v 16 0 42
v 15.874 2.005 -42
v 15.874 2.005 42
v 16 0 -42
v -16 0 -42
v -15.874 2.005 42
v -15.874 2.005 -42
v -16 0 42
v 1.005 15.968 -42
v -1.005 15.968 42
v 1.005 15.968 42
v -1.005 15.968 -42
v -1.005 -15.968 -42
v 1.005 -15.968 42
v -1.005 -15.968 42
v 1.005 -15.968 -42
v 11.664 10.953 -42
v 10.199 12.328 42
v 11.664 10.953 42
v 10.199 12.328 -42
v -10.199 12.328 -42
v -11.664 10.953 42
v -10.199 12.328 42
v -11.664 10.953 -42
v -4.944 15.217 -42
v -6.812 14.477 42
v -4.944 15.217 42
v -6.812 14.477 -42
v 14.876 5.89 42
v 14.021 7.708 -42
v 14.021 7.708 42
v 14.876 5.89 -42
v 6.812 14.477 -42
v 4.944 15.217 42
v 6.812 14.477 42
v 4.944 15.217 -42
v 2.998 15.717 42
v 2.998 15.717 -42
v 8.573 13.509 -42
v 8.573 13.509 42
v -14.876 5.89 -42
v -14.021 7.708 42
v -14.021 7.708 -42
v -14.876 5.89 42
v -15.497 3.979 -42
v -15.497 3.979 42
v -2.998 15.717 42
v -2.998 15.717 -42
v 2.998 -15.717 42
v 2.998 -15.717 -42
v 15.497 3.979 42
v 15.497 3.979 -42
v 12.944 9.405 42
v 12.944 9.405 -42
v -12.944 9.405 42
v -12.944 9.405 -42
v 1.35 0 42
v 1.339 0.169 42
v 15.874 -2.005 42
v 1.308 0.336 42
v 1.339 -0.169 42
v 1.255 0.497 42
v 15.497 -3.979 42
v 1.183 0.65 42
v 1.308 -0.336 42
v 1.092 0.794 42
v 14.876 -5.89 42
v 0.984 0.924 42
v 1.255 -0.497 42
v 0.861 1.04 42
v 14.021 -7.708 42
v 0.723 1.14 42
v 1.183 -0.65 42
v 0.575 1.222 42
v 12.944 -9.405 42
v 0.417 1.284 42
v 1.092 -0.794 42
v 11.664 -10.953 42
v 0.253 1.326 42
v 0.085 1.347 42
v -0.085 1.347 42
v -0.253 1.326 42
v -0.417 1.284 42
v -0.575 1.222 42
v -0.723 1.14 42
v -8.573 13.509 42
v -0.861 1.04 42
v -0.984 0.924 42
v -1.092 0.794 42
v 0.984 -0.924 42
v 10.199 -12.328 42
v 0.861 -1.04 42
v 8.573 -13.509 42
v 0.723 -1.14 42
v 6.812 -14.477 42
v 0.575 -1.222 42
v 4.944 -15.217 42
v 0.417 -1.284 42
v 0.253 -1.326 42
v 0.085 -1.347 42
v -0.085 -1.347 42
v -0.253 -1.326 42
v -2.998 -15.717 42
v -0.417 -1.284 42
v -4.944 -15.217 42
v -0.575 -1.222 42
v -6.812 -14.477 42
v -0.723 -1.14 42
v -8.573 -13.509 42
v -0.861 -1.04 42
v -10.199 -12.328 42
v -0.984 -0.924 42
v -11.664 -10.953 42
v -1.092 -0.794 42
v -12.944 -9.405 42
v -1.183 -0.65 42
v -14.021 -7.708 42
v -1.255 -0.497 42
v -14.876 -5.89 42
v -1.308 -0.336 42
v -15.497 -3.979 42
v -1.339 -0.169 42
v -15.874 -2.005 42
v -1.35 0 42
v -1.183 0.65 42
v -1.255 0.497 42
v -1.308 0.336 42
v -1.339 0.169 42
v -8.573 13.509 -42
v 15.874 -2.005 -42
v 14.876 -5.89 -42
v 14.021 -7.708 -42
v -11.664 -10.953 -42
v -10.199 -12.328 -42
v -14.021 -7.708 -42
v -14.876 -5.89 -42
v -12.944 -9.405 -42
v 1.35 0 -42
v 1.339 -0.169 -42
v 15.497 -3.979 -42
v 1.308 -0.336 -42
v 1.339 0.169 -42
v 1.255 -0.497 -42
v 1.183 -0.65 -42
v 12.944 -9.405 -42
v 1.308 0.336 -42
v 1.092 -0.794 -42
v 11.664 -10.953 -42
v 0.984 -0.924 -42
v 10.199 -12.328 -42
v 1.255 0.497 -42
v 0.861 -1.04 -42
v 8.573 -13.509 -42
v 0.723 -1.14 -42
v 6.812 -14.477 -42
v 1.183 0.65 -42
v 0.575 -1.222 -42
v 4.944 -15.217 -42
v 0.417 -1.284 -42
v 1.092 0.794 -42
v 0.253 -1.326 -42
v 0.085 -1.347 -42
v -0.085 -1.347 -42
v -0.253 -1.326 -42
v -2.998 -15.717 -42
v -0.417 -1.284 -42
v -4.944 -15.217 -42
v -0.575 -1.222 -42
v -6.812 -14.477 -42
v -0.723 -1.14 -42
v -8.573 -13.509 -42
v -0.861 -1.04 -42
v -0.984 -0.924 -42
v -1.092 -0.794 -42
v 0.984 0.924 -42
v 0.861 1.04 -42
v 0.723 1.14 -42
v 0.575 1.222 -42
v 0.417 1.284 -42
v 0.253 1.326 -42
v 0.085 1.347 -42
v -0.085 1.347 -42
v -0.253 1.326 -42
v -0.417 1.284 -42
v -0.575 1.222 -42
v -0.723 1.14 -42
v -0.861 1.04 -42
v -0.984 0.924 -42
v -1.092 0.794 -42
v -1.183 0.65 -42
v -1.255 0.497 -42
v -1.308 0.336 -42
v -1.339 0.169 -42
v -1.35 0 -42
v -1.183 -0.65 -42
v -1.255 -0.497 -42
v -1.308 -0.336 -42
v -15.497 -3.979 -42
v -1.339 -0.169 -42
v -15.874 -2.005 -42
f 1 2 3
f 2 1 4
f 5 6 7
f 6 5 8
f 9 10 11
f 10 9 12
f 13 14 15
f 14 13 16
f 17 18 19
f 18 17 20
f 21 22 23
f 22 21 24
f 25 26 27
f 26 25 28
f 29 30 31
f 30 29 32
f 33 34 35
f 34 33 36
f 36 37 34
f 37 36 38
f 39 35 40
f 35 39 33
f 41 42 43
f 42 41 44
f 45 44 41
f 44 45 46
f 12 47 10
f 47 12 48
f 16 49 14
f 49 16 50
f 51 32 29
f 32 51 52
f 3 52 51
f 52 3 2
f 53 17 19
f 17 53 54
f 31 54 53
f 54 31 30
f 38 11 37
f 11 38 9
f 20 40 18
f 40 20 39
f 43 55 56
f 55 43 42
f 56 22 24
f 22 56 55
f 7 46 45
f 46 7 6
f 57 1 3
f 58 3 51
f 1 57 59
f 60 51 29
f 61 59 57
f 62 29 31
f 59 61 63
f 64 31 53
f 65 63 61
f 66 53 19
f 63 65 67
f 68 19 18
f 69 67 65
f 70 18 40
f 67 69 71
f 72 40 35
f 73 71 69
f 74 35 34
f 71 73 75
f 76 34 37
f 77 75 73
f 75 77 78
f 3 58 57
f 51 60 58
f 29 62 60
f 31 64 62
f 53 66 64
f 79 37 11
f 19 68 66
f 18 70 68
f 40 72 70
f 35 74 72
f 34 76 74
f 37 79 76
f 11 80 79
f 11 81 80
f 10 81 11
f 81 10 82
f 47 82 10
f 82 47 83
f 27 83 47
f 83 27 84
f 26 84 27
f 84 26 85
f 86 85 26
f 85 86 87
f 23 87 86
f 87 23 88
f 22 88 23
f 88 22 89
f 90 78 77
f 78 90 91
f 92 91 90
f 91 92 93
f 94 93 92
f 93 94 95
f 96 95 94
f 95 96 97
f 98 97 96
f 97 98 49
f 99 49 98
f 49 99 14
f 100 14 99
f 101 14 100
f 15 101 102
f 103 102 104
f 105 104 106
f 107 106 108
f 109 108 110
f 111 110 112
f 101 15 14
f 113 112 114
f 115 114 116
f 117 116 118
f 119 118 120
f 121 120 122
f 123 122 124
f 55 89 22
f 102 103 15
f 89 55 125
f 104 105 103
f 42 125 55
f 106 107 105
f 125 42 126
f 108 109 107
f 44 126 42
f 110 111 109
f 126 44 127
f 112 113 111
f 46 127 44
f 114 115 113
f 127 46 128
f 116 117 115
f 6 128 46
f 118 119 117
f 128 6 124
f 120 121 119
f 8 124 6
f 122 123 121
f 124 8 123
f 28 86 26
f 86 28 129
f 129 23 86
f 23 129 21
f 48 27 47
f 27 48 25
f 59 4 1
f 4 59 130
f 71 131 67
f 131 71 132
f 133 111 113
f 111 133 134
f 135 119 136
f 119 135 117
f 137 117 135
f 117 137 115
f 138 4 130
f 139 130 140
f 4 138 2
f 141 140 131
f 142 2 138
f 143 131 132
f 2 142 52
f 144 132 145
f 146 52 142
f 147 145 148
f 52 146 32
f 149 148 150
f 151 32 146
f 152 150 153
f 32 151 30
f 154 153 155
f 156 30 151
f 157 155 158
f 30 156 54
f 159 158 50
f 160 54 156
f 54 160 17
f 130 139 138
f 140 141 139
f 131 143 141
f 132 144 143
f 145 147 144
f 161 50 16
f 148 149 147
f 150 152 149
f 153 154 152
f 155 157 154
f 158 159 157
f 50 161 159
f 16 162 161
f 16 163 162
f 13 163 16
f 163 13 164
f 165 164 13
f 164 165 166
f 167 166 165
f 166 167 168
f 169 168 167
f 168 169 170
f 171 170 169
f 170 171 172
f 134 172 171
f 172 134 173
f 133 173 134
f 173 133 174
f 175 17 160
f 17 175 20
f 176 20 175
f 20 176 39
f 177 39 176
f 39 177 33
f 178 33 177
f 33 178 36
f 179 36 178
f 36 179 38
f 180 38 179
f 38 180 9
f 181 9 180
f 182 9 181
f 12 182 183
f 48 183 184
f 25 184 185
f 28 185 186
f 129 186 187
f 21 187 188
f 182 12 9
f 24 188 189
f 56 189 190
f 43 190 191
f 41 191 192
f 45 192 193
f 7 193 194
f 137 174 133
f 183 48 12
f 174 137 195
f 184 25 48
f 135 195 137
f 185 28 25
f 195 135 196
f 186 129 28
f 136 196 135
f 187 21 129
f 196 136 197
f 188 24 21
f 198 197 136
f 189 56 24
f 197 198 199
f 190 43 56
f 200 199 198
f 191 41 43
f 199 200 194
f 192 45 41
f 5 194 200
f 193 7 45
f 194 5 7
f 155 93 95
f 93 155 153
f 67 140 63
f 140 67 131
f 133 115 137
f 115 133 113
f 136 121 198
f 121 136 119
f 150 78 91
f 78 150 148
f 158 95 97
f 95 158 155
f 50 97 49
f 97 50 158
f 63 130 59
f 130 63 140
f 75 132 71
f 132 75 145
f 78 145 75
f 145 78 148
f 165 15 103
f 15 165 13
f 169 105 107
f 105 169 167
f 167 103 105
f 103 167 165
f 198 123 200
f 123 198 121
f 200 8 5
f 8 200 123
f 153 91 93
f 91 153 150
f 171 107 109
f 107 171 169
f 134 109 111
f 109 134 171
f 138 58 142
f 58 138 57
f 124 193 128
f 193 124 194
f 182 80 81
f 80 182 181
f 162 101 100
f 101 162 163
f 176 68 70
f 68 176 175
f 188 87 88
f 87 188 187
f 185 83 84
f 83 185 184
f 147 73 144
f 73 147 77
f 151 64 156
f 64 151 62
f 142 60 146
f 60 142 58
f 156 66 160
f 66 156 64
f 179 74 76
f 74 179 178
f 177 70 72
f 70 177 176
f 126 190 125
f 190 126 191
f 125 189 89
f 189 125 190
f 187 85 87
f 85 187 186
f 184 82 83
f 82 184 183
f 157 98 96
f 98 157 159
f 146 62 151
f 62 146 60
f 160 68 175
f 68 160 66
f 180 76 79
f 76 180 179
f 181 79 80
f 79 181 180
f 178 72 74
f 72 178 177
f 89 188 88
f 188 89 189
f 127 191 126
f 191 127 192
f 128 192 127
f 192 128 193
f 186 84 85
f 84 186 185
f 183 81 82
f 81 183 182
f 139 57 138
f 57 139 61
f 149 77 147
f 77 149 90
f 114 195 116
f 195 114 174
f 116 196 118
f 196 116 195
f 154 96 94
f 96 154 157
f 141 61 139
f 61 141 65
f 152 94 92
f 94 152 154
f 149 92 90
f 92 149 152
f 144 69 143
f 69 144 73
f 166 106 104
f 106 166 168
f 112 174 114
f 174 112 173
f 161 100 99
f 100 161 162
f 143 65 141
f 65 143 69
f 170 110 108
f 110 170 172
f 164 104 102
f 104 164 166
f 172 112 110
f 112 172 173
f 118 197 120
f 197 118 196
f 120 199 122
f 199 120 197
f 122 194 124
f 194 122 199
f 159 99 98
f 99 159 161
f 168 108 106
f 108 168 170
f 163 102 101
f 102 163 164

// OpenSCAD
$fn = 50;


difference() {
	union() {
		translate(v = [0, 0, -42.0000000000]) {
			cylinder(h = 84, r = 16.0000000000);
		}
	}
	union() {
		translate(v = [0, 0, -100.0000000000]) {
			cylinder(h = 200, r = 1.3500000000);
		}
	}
}
